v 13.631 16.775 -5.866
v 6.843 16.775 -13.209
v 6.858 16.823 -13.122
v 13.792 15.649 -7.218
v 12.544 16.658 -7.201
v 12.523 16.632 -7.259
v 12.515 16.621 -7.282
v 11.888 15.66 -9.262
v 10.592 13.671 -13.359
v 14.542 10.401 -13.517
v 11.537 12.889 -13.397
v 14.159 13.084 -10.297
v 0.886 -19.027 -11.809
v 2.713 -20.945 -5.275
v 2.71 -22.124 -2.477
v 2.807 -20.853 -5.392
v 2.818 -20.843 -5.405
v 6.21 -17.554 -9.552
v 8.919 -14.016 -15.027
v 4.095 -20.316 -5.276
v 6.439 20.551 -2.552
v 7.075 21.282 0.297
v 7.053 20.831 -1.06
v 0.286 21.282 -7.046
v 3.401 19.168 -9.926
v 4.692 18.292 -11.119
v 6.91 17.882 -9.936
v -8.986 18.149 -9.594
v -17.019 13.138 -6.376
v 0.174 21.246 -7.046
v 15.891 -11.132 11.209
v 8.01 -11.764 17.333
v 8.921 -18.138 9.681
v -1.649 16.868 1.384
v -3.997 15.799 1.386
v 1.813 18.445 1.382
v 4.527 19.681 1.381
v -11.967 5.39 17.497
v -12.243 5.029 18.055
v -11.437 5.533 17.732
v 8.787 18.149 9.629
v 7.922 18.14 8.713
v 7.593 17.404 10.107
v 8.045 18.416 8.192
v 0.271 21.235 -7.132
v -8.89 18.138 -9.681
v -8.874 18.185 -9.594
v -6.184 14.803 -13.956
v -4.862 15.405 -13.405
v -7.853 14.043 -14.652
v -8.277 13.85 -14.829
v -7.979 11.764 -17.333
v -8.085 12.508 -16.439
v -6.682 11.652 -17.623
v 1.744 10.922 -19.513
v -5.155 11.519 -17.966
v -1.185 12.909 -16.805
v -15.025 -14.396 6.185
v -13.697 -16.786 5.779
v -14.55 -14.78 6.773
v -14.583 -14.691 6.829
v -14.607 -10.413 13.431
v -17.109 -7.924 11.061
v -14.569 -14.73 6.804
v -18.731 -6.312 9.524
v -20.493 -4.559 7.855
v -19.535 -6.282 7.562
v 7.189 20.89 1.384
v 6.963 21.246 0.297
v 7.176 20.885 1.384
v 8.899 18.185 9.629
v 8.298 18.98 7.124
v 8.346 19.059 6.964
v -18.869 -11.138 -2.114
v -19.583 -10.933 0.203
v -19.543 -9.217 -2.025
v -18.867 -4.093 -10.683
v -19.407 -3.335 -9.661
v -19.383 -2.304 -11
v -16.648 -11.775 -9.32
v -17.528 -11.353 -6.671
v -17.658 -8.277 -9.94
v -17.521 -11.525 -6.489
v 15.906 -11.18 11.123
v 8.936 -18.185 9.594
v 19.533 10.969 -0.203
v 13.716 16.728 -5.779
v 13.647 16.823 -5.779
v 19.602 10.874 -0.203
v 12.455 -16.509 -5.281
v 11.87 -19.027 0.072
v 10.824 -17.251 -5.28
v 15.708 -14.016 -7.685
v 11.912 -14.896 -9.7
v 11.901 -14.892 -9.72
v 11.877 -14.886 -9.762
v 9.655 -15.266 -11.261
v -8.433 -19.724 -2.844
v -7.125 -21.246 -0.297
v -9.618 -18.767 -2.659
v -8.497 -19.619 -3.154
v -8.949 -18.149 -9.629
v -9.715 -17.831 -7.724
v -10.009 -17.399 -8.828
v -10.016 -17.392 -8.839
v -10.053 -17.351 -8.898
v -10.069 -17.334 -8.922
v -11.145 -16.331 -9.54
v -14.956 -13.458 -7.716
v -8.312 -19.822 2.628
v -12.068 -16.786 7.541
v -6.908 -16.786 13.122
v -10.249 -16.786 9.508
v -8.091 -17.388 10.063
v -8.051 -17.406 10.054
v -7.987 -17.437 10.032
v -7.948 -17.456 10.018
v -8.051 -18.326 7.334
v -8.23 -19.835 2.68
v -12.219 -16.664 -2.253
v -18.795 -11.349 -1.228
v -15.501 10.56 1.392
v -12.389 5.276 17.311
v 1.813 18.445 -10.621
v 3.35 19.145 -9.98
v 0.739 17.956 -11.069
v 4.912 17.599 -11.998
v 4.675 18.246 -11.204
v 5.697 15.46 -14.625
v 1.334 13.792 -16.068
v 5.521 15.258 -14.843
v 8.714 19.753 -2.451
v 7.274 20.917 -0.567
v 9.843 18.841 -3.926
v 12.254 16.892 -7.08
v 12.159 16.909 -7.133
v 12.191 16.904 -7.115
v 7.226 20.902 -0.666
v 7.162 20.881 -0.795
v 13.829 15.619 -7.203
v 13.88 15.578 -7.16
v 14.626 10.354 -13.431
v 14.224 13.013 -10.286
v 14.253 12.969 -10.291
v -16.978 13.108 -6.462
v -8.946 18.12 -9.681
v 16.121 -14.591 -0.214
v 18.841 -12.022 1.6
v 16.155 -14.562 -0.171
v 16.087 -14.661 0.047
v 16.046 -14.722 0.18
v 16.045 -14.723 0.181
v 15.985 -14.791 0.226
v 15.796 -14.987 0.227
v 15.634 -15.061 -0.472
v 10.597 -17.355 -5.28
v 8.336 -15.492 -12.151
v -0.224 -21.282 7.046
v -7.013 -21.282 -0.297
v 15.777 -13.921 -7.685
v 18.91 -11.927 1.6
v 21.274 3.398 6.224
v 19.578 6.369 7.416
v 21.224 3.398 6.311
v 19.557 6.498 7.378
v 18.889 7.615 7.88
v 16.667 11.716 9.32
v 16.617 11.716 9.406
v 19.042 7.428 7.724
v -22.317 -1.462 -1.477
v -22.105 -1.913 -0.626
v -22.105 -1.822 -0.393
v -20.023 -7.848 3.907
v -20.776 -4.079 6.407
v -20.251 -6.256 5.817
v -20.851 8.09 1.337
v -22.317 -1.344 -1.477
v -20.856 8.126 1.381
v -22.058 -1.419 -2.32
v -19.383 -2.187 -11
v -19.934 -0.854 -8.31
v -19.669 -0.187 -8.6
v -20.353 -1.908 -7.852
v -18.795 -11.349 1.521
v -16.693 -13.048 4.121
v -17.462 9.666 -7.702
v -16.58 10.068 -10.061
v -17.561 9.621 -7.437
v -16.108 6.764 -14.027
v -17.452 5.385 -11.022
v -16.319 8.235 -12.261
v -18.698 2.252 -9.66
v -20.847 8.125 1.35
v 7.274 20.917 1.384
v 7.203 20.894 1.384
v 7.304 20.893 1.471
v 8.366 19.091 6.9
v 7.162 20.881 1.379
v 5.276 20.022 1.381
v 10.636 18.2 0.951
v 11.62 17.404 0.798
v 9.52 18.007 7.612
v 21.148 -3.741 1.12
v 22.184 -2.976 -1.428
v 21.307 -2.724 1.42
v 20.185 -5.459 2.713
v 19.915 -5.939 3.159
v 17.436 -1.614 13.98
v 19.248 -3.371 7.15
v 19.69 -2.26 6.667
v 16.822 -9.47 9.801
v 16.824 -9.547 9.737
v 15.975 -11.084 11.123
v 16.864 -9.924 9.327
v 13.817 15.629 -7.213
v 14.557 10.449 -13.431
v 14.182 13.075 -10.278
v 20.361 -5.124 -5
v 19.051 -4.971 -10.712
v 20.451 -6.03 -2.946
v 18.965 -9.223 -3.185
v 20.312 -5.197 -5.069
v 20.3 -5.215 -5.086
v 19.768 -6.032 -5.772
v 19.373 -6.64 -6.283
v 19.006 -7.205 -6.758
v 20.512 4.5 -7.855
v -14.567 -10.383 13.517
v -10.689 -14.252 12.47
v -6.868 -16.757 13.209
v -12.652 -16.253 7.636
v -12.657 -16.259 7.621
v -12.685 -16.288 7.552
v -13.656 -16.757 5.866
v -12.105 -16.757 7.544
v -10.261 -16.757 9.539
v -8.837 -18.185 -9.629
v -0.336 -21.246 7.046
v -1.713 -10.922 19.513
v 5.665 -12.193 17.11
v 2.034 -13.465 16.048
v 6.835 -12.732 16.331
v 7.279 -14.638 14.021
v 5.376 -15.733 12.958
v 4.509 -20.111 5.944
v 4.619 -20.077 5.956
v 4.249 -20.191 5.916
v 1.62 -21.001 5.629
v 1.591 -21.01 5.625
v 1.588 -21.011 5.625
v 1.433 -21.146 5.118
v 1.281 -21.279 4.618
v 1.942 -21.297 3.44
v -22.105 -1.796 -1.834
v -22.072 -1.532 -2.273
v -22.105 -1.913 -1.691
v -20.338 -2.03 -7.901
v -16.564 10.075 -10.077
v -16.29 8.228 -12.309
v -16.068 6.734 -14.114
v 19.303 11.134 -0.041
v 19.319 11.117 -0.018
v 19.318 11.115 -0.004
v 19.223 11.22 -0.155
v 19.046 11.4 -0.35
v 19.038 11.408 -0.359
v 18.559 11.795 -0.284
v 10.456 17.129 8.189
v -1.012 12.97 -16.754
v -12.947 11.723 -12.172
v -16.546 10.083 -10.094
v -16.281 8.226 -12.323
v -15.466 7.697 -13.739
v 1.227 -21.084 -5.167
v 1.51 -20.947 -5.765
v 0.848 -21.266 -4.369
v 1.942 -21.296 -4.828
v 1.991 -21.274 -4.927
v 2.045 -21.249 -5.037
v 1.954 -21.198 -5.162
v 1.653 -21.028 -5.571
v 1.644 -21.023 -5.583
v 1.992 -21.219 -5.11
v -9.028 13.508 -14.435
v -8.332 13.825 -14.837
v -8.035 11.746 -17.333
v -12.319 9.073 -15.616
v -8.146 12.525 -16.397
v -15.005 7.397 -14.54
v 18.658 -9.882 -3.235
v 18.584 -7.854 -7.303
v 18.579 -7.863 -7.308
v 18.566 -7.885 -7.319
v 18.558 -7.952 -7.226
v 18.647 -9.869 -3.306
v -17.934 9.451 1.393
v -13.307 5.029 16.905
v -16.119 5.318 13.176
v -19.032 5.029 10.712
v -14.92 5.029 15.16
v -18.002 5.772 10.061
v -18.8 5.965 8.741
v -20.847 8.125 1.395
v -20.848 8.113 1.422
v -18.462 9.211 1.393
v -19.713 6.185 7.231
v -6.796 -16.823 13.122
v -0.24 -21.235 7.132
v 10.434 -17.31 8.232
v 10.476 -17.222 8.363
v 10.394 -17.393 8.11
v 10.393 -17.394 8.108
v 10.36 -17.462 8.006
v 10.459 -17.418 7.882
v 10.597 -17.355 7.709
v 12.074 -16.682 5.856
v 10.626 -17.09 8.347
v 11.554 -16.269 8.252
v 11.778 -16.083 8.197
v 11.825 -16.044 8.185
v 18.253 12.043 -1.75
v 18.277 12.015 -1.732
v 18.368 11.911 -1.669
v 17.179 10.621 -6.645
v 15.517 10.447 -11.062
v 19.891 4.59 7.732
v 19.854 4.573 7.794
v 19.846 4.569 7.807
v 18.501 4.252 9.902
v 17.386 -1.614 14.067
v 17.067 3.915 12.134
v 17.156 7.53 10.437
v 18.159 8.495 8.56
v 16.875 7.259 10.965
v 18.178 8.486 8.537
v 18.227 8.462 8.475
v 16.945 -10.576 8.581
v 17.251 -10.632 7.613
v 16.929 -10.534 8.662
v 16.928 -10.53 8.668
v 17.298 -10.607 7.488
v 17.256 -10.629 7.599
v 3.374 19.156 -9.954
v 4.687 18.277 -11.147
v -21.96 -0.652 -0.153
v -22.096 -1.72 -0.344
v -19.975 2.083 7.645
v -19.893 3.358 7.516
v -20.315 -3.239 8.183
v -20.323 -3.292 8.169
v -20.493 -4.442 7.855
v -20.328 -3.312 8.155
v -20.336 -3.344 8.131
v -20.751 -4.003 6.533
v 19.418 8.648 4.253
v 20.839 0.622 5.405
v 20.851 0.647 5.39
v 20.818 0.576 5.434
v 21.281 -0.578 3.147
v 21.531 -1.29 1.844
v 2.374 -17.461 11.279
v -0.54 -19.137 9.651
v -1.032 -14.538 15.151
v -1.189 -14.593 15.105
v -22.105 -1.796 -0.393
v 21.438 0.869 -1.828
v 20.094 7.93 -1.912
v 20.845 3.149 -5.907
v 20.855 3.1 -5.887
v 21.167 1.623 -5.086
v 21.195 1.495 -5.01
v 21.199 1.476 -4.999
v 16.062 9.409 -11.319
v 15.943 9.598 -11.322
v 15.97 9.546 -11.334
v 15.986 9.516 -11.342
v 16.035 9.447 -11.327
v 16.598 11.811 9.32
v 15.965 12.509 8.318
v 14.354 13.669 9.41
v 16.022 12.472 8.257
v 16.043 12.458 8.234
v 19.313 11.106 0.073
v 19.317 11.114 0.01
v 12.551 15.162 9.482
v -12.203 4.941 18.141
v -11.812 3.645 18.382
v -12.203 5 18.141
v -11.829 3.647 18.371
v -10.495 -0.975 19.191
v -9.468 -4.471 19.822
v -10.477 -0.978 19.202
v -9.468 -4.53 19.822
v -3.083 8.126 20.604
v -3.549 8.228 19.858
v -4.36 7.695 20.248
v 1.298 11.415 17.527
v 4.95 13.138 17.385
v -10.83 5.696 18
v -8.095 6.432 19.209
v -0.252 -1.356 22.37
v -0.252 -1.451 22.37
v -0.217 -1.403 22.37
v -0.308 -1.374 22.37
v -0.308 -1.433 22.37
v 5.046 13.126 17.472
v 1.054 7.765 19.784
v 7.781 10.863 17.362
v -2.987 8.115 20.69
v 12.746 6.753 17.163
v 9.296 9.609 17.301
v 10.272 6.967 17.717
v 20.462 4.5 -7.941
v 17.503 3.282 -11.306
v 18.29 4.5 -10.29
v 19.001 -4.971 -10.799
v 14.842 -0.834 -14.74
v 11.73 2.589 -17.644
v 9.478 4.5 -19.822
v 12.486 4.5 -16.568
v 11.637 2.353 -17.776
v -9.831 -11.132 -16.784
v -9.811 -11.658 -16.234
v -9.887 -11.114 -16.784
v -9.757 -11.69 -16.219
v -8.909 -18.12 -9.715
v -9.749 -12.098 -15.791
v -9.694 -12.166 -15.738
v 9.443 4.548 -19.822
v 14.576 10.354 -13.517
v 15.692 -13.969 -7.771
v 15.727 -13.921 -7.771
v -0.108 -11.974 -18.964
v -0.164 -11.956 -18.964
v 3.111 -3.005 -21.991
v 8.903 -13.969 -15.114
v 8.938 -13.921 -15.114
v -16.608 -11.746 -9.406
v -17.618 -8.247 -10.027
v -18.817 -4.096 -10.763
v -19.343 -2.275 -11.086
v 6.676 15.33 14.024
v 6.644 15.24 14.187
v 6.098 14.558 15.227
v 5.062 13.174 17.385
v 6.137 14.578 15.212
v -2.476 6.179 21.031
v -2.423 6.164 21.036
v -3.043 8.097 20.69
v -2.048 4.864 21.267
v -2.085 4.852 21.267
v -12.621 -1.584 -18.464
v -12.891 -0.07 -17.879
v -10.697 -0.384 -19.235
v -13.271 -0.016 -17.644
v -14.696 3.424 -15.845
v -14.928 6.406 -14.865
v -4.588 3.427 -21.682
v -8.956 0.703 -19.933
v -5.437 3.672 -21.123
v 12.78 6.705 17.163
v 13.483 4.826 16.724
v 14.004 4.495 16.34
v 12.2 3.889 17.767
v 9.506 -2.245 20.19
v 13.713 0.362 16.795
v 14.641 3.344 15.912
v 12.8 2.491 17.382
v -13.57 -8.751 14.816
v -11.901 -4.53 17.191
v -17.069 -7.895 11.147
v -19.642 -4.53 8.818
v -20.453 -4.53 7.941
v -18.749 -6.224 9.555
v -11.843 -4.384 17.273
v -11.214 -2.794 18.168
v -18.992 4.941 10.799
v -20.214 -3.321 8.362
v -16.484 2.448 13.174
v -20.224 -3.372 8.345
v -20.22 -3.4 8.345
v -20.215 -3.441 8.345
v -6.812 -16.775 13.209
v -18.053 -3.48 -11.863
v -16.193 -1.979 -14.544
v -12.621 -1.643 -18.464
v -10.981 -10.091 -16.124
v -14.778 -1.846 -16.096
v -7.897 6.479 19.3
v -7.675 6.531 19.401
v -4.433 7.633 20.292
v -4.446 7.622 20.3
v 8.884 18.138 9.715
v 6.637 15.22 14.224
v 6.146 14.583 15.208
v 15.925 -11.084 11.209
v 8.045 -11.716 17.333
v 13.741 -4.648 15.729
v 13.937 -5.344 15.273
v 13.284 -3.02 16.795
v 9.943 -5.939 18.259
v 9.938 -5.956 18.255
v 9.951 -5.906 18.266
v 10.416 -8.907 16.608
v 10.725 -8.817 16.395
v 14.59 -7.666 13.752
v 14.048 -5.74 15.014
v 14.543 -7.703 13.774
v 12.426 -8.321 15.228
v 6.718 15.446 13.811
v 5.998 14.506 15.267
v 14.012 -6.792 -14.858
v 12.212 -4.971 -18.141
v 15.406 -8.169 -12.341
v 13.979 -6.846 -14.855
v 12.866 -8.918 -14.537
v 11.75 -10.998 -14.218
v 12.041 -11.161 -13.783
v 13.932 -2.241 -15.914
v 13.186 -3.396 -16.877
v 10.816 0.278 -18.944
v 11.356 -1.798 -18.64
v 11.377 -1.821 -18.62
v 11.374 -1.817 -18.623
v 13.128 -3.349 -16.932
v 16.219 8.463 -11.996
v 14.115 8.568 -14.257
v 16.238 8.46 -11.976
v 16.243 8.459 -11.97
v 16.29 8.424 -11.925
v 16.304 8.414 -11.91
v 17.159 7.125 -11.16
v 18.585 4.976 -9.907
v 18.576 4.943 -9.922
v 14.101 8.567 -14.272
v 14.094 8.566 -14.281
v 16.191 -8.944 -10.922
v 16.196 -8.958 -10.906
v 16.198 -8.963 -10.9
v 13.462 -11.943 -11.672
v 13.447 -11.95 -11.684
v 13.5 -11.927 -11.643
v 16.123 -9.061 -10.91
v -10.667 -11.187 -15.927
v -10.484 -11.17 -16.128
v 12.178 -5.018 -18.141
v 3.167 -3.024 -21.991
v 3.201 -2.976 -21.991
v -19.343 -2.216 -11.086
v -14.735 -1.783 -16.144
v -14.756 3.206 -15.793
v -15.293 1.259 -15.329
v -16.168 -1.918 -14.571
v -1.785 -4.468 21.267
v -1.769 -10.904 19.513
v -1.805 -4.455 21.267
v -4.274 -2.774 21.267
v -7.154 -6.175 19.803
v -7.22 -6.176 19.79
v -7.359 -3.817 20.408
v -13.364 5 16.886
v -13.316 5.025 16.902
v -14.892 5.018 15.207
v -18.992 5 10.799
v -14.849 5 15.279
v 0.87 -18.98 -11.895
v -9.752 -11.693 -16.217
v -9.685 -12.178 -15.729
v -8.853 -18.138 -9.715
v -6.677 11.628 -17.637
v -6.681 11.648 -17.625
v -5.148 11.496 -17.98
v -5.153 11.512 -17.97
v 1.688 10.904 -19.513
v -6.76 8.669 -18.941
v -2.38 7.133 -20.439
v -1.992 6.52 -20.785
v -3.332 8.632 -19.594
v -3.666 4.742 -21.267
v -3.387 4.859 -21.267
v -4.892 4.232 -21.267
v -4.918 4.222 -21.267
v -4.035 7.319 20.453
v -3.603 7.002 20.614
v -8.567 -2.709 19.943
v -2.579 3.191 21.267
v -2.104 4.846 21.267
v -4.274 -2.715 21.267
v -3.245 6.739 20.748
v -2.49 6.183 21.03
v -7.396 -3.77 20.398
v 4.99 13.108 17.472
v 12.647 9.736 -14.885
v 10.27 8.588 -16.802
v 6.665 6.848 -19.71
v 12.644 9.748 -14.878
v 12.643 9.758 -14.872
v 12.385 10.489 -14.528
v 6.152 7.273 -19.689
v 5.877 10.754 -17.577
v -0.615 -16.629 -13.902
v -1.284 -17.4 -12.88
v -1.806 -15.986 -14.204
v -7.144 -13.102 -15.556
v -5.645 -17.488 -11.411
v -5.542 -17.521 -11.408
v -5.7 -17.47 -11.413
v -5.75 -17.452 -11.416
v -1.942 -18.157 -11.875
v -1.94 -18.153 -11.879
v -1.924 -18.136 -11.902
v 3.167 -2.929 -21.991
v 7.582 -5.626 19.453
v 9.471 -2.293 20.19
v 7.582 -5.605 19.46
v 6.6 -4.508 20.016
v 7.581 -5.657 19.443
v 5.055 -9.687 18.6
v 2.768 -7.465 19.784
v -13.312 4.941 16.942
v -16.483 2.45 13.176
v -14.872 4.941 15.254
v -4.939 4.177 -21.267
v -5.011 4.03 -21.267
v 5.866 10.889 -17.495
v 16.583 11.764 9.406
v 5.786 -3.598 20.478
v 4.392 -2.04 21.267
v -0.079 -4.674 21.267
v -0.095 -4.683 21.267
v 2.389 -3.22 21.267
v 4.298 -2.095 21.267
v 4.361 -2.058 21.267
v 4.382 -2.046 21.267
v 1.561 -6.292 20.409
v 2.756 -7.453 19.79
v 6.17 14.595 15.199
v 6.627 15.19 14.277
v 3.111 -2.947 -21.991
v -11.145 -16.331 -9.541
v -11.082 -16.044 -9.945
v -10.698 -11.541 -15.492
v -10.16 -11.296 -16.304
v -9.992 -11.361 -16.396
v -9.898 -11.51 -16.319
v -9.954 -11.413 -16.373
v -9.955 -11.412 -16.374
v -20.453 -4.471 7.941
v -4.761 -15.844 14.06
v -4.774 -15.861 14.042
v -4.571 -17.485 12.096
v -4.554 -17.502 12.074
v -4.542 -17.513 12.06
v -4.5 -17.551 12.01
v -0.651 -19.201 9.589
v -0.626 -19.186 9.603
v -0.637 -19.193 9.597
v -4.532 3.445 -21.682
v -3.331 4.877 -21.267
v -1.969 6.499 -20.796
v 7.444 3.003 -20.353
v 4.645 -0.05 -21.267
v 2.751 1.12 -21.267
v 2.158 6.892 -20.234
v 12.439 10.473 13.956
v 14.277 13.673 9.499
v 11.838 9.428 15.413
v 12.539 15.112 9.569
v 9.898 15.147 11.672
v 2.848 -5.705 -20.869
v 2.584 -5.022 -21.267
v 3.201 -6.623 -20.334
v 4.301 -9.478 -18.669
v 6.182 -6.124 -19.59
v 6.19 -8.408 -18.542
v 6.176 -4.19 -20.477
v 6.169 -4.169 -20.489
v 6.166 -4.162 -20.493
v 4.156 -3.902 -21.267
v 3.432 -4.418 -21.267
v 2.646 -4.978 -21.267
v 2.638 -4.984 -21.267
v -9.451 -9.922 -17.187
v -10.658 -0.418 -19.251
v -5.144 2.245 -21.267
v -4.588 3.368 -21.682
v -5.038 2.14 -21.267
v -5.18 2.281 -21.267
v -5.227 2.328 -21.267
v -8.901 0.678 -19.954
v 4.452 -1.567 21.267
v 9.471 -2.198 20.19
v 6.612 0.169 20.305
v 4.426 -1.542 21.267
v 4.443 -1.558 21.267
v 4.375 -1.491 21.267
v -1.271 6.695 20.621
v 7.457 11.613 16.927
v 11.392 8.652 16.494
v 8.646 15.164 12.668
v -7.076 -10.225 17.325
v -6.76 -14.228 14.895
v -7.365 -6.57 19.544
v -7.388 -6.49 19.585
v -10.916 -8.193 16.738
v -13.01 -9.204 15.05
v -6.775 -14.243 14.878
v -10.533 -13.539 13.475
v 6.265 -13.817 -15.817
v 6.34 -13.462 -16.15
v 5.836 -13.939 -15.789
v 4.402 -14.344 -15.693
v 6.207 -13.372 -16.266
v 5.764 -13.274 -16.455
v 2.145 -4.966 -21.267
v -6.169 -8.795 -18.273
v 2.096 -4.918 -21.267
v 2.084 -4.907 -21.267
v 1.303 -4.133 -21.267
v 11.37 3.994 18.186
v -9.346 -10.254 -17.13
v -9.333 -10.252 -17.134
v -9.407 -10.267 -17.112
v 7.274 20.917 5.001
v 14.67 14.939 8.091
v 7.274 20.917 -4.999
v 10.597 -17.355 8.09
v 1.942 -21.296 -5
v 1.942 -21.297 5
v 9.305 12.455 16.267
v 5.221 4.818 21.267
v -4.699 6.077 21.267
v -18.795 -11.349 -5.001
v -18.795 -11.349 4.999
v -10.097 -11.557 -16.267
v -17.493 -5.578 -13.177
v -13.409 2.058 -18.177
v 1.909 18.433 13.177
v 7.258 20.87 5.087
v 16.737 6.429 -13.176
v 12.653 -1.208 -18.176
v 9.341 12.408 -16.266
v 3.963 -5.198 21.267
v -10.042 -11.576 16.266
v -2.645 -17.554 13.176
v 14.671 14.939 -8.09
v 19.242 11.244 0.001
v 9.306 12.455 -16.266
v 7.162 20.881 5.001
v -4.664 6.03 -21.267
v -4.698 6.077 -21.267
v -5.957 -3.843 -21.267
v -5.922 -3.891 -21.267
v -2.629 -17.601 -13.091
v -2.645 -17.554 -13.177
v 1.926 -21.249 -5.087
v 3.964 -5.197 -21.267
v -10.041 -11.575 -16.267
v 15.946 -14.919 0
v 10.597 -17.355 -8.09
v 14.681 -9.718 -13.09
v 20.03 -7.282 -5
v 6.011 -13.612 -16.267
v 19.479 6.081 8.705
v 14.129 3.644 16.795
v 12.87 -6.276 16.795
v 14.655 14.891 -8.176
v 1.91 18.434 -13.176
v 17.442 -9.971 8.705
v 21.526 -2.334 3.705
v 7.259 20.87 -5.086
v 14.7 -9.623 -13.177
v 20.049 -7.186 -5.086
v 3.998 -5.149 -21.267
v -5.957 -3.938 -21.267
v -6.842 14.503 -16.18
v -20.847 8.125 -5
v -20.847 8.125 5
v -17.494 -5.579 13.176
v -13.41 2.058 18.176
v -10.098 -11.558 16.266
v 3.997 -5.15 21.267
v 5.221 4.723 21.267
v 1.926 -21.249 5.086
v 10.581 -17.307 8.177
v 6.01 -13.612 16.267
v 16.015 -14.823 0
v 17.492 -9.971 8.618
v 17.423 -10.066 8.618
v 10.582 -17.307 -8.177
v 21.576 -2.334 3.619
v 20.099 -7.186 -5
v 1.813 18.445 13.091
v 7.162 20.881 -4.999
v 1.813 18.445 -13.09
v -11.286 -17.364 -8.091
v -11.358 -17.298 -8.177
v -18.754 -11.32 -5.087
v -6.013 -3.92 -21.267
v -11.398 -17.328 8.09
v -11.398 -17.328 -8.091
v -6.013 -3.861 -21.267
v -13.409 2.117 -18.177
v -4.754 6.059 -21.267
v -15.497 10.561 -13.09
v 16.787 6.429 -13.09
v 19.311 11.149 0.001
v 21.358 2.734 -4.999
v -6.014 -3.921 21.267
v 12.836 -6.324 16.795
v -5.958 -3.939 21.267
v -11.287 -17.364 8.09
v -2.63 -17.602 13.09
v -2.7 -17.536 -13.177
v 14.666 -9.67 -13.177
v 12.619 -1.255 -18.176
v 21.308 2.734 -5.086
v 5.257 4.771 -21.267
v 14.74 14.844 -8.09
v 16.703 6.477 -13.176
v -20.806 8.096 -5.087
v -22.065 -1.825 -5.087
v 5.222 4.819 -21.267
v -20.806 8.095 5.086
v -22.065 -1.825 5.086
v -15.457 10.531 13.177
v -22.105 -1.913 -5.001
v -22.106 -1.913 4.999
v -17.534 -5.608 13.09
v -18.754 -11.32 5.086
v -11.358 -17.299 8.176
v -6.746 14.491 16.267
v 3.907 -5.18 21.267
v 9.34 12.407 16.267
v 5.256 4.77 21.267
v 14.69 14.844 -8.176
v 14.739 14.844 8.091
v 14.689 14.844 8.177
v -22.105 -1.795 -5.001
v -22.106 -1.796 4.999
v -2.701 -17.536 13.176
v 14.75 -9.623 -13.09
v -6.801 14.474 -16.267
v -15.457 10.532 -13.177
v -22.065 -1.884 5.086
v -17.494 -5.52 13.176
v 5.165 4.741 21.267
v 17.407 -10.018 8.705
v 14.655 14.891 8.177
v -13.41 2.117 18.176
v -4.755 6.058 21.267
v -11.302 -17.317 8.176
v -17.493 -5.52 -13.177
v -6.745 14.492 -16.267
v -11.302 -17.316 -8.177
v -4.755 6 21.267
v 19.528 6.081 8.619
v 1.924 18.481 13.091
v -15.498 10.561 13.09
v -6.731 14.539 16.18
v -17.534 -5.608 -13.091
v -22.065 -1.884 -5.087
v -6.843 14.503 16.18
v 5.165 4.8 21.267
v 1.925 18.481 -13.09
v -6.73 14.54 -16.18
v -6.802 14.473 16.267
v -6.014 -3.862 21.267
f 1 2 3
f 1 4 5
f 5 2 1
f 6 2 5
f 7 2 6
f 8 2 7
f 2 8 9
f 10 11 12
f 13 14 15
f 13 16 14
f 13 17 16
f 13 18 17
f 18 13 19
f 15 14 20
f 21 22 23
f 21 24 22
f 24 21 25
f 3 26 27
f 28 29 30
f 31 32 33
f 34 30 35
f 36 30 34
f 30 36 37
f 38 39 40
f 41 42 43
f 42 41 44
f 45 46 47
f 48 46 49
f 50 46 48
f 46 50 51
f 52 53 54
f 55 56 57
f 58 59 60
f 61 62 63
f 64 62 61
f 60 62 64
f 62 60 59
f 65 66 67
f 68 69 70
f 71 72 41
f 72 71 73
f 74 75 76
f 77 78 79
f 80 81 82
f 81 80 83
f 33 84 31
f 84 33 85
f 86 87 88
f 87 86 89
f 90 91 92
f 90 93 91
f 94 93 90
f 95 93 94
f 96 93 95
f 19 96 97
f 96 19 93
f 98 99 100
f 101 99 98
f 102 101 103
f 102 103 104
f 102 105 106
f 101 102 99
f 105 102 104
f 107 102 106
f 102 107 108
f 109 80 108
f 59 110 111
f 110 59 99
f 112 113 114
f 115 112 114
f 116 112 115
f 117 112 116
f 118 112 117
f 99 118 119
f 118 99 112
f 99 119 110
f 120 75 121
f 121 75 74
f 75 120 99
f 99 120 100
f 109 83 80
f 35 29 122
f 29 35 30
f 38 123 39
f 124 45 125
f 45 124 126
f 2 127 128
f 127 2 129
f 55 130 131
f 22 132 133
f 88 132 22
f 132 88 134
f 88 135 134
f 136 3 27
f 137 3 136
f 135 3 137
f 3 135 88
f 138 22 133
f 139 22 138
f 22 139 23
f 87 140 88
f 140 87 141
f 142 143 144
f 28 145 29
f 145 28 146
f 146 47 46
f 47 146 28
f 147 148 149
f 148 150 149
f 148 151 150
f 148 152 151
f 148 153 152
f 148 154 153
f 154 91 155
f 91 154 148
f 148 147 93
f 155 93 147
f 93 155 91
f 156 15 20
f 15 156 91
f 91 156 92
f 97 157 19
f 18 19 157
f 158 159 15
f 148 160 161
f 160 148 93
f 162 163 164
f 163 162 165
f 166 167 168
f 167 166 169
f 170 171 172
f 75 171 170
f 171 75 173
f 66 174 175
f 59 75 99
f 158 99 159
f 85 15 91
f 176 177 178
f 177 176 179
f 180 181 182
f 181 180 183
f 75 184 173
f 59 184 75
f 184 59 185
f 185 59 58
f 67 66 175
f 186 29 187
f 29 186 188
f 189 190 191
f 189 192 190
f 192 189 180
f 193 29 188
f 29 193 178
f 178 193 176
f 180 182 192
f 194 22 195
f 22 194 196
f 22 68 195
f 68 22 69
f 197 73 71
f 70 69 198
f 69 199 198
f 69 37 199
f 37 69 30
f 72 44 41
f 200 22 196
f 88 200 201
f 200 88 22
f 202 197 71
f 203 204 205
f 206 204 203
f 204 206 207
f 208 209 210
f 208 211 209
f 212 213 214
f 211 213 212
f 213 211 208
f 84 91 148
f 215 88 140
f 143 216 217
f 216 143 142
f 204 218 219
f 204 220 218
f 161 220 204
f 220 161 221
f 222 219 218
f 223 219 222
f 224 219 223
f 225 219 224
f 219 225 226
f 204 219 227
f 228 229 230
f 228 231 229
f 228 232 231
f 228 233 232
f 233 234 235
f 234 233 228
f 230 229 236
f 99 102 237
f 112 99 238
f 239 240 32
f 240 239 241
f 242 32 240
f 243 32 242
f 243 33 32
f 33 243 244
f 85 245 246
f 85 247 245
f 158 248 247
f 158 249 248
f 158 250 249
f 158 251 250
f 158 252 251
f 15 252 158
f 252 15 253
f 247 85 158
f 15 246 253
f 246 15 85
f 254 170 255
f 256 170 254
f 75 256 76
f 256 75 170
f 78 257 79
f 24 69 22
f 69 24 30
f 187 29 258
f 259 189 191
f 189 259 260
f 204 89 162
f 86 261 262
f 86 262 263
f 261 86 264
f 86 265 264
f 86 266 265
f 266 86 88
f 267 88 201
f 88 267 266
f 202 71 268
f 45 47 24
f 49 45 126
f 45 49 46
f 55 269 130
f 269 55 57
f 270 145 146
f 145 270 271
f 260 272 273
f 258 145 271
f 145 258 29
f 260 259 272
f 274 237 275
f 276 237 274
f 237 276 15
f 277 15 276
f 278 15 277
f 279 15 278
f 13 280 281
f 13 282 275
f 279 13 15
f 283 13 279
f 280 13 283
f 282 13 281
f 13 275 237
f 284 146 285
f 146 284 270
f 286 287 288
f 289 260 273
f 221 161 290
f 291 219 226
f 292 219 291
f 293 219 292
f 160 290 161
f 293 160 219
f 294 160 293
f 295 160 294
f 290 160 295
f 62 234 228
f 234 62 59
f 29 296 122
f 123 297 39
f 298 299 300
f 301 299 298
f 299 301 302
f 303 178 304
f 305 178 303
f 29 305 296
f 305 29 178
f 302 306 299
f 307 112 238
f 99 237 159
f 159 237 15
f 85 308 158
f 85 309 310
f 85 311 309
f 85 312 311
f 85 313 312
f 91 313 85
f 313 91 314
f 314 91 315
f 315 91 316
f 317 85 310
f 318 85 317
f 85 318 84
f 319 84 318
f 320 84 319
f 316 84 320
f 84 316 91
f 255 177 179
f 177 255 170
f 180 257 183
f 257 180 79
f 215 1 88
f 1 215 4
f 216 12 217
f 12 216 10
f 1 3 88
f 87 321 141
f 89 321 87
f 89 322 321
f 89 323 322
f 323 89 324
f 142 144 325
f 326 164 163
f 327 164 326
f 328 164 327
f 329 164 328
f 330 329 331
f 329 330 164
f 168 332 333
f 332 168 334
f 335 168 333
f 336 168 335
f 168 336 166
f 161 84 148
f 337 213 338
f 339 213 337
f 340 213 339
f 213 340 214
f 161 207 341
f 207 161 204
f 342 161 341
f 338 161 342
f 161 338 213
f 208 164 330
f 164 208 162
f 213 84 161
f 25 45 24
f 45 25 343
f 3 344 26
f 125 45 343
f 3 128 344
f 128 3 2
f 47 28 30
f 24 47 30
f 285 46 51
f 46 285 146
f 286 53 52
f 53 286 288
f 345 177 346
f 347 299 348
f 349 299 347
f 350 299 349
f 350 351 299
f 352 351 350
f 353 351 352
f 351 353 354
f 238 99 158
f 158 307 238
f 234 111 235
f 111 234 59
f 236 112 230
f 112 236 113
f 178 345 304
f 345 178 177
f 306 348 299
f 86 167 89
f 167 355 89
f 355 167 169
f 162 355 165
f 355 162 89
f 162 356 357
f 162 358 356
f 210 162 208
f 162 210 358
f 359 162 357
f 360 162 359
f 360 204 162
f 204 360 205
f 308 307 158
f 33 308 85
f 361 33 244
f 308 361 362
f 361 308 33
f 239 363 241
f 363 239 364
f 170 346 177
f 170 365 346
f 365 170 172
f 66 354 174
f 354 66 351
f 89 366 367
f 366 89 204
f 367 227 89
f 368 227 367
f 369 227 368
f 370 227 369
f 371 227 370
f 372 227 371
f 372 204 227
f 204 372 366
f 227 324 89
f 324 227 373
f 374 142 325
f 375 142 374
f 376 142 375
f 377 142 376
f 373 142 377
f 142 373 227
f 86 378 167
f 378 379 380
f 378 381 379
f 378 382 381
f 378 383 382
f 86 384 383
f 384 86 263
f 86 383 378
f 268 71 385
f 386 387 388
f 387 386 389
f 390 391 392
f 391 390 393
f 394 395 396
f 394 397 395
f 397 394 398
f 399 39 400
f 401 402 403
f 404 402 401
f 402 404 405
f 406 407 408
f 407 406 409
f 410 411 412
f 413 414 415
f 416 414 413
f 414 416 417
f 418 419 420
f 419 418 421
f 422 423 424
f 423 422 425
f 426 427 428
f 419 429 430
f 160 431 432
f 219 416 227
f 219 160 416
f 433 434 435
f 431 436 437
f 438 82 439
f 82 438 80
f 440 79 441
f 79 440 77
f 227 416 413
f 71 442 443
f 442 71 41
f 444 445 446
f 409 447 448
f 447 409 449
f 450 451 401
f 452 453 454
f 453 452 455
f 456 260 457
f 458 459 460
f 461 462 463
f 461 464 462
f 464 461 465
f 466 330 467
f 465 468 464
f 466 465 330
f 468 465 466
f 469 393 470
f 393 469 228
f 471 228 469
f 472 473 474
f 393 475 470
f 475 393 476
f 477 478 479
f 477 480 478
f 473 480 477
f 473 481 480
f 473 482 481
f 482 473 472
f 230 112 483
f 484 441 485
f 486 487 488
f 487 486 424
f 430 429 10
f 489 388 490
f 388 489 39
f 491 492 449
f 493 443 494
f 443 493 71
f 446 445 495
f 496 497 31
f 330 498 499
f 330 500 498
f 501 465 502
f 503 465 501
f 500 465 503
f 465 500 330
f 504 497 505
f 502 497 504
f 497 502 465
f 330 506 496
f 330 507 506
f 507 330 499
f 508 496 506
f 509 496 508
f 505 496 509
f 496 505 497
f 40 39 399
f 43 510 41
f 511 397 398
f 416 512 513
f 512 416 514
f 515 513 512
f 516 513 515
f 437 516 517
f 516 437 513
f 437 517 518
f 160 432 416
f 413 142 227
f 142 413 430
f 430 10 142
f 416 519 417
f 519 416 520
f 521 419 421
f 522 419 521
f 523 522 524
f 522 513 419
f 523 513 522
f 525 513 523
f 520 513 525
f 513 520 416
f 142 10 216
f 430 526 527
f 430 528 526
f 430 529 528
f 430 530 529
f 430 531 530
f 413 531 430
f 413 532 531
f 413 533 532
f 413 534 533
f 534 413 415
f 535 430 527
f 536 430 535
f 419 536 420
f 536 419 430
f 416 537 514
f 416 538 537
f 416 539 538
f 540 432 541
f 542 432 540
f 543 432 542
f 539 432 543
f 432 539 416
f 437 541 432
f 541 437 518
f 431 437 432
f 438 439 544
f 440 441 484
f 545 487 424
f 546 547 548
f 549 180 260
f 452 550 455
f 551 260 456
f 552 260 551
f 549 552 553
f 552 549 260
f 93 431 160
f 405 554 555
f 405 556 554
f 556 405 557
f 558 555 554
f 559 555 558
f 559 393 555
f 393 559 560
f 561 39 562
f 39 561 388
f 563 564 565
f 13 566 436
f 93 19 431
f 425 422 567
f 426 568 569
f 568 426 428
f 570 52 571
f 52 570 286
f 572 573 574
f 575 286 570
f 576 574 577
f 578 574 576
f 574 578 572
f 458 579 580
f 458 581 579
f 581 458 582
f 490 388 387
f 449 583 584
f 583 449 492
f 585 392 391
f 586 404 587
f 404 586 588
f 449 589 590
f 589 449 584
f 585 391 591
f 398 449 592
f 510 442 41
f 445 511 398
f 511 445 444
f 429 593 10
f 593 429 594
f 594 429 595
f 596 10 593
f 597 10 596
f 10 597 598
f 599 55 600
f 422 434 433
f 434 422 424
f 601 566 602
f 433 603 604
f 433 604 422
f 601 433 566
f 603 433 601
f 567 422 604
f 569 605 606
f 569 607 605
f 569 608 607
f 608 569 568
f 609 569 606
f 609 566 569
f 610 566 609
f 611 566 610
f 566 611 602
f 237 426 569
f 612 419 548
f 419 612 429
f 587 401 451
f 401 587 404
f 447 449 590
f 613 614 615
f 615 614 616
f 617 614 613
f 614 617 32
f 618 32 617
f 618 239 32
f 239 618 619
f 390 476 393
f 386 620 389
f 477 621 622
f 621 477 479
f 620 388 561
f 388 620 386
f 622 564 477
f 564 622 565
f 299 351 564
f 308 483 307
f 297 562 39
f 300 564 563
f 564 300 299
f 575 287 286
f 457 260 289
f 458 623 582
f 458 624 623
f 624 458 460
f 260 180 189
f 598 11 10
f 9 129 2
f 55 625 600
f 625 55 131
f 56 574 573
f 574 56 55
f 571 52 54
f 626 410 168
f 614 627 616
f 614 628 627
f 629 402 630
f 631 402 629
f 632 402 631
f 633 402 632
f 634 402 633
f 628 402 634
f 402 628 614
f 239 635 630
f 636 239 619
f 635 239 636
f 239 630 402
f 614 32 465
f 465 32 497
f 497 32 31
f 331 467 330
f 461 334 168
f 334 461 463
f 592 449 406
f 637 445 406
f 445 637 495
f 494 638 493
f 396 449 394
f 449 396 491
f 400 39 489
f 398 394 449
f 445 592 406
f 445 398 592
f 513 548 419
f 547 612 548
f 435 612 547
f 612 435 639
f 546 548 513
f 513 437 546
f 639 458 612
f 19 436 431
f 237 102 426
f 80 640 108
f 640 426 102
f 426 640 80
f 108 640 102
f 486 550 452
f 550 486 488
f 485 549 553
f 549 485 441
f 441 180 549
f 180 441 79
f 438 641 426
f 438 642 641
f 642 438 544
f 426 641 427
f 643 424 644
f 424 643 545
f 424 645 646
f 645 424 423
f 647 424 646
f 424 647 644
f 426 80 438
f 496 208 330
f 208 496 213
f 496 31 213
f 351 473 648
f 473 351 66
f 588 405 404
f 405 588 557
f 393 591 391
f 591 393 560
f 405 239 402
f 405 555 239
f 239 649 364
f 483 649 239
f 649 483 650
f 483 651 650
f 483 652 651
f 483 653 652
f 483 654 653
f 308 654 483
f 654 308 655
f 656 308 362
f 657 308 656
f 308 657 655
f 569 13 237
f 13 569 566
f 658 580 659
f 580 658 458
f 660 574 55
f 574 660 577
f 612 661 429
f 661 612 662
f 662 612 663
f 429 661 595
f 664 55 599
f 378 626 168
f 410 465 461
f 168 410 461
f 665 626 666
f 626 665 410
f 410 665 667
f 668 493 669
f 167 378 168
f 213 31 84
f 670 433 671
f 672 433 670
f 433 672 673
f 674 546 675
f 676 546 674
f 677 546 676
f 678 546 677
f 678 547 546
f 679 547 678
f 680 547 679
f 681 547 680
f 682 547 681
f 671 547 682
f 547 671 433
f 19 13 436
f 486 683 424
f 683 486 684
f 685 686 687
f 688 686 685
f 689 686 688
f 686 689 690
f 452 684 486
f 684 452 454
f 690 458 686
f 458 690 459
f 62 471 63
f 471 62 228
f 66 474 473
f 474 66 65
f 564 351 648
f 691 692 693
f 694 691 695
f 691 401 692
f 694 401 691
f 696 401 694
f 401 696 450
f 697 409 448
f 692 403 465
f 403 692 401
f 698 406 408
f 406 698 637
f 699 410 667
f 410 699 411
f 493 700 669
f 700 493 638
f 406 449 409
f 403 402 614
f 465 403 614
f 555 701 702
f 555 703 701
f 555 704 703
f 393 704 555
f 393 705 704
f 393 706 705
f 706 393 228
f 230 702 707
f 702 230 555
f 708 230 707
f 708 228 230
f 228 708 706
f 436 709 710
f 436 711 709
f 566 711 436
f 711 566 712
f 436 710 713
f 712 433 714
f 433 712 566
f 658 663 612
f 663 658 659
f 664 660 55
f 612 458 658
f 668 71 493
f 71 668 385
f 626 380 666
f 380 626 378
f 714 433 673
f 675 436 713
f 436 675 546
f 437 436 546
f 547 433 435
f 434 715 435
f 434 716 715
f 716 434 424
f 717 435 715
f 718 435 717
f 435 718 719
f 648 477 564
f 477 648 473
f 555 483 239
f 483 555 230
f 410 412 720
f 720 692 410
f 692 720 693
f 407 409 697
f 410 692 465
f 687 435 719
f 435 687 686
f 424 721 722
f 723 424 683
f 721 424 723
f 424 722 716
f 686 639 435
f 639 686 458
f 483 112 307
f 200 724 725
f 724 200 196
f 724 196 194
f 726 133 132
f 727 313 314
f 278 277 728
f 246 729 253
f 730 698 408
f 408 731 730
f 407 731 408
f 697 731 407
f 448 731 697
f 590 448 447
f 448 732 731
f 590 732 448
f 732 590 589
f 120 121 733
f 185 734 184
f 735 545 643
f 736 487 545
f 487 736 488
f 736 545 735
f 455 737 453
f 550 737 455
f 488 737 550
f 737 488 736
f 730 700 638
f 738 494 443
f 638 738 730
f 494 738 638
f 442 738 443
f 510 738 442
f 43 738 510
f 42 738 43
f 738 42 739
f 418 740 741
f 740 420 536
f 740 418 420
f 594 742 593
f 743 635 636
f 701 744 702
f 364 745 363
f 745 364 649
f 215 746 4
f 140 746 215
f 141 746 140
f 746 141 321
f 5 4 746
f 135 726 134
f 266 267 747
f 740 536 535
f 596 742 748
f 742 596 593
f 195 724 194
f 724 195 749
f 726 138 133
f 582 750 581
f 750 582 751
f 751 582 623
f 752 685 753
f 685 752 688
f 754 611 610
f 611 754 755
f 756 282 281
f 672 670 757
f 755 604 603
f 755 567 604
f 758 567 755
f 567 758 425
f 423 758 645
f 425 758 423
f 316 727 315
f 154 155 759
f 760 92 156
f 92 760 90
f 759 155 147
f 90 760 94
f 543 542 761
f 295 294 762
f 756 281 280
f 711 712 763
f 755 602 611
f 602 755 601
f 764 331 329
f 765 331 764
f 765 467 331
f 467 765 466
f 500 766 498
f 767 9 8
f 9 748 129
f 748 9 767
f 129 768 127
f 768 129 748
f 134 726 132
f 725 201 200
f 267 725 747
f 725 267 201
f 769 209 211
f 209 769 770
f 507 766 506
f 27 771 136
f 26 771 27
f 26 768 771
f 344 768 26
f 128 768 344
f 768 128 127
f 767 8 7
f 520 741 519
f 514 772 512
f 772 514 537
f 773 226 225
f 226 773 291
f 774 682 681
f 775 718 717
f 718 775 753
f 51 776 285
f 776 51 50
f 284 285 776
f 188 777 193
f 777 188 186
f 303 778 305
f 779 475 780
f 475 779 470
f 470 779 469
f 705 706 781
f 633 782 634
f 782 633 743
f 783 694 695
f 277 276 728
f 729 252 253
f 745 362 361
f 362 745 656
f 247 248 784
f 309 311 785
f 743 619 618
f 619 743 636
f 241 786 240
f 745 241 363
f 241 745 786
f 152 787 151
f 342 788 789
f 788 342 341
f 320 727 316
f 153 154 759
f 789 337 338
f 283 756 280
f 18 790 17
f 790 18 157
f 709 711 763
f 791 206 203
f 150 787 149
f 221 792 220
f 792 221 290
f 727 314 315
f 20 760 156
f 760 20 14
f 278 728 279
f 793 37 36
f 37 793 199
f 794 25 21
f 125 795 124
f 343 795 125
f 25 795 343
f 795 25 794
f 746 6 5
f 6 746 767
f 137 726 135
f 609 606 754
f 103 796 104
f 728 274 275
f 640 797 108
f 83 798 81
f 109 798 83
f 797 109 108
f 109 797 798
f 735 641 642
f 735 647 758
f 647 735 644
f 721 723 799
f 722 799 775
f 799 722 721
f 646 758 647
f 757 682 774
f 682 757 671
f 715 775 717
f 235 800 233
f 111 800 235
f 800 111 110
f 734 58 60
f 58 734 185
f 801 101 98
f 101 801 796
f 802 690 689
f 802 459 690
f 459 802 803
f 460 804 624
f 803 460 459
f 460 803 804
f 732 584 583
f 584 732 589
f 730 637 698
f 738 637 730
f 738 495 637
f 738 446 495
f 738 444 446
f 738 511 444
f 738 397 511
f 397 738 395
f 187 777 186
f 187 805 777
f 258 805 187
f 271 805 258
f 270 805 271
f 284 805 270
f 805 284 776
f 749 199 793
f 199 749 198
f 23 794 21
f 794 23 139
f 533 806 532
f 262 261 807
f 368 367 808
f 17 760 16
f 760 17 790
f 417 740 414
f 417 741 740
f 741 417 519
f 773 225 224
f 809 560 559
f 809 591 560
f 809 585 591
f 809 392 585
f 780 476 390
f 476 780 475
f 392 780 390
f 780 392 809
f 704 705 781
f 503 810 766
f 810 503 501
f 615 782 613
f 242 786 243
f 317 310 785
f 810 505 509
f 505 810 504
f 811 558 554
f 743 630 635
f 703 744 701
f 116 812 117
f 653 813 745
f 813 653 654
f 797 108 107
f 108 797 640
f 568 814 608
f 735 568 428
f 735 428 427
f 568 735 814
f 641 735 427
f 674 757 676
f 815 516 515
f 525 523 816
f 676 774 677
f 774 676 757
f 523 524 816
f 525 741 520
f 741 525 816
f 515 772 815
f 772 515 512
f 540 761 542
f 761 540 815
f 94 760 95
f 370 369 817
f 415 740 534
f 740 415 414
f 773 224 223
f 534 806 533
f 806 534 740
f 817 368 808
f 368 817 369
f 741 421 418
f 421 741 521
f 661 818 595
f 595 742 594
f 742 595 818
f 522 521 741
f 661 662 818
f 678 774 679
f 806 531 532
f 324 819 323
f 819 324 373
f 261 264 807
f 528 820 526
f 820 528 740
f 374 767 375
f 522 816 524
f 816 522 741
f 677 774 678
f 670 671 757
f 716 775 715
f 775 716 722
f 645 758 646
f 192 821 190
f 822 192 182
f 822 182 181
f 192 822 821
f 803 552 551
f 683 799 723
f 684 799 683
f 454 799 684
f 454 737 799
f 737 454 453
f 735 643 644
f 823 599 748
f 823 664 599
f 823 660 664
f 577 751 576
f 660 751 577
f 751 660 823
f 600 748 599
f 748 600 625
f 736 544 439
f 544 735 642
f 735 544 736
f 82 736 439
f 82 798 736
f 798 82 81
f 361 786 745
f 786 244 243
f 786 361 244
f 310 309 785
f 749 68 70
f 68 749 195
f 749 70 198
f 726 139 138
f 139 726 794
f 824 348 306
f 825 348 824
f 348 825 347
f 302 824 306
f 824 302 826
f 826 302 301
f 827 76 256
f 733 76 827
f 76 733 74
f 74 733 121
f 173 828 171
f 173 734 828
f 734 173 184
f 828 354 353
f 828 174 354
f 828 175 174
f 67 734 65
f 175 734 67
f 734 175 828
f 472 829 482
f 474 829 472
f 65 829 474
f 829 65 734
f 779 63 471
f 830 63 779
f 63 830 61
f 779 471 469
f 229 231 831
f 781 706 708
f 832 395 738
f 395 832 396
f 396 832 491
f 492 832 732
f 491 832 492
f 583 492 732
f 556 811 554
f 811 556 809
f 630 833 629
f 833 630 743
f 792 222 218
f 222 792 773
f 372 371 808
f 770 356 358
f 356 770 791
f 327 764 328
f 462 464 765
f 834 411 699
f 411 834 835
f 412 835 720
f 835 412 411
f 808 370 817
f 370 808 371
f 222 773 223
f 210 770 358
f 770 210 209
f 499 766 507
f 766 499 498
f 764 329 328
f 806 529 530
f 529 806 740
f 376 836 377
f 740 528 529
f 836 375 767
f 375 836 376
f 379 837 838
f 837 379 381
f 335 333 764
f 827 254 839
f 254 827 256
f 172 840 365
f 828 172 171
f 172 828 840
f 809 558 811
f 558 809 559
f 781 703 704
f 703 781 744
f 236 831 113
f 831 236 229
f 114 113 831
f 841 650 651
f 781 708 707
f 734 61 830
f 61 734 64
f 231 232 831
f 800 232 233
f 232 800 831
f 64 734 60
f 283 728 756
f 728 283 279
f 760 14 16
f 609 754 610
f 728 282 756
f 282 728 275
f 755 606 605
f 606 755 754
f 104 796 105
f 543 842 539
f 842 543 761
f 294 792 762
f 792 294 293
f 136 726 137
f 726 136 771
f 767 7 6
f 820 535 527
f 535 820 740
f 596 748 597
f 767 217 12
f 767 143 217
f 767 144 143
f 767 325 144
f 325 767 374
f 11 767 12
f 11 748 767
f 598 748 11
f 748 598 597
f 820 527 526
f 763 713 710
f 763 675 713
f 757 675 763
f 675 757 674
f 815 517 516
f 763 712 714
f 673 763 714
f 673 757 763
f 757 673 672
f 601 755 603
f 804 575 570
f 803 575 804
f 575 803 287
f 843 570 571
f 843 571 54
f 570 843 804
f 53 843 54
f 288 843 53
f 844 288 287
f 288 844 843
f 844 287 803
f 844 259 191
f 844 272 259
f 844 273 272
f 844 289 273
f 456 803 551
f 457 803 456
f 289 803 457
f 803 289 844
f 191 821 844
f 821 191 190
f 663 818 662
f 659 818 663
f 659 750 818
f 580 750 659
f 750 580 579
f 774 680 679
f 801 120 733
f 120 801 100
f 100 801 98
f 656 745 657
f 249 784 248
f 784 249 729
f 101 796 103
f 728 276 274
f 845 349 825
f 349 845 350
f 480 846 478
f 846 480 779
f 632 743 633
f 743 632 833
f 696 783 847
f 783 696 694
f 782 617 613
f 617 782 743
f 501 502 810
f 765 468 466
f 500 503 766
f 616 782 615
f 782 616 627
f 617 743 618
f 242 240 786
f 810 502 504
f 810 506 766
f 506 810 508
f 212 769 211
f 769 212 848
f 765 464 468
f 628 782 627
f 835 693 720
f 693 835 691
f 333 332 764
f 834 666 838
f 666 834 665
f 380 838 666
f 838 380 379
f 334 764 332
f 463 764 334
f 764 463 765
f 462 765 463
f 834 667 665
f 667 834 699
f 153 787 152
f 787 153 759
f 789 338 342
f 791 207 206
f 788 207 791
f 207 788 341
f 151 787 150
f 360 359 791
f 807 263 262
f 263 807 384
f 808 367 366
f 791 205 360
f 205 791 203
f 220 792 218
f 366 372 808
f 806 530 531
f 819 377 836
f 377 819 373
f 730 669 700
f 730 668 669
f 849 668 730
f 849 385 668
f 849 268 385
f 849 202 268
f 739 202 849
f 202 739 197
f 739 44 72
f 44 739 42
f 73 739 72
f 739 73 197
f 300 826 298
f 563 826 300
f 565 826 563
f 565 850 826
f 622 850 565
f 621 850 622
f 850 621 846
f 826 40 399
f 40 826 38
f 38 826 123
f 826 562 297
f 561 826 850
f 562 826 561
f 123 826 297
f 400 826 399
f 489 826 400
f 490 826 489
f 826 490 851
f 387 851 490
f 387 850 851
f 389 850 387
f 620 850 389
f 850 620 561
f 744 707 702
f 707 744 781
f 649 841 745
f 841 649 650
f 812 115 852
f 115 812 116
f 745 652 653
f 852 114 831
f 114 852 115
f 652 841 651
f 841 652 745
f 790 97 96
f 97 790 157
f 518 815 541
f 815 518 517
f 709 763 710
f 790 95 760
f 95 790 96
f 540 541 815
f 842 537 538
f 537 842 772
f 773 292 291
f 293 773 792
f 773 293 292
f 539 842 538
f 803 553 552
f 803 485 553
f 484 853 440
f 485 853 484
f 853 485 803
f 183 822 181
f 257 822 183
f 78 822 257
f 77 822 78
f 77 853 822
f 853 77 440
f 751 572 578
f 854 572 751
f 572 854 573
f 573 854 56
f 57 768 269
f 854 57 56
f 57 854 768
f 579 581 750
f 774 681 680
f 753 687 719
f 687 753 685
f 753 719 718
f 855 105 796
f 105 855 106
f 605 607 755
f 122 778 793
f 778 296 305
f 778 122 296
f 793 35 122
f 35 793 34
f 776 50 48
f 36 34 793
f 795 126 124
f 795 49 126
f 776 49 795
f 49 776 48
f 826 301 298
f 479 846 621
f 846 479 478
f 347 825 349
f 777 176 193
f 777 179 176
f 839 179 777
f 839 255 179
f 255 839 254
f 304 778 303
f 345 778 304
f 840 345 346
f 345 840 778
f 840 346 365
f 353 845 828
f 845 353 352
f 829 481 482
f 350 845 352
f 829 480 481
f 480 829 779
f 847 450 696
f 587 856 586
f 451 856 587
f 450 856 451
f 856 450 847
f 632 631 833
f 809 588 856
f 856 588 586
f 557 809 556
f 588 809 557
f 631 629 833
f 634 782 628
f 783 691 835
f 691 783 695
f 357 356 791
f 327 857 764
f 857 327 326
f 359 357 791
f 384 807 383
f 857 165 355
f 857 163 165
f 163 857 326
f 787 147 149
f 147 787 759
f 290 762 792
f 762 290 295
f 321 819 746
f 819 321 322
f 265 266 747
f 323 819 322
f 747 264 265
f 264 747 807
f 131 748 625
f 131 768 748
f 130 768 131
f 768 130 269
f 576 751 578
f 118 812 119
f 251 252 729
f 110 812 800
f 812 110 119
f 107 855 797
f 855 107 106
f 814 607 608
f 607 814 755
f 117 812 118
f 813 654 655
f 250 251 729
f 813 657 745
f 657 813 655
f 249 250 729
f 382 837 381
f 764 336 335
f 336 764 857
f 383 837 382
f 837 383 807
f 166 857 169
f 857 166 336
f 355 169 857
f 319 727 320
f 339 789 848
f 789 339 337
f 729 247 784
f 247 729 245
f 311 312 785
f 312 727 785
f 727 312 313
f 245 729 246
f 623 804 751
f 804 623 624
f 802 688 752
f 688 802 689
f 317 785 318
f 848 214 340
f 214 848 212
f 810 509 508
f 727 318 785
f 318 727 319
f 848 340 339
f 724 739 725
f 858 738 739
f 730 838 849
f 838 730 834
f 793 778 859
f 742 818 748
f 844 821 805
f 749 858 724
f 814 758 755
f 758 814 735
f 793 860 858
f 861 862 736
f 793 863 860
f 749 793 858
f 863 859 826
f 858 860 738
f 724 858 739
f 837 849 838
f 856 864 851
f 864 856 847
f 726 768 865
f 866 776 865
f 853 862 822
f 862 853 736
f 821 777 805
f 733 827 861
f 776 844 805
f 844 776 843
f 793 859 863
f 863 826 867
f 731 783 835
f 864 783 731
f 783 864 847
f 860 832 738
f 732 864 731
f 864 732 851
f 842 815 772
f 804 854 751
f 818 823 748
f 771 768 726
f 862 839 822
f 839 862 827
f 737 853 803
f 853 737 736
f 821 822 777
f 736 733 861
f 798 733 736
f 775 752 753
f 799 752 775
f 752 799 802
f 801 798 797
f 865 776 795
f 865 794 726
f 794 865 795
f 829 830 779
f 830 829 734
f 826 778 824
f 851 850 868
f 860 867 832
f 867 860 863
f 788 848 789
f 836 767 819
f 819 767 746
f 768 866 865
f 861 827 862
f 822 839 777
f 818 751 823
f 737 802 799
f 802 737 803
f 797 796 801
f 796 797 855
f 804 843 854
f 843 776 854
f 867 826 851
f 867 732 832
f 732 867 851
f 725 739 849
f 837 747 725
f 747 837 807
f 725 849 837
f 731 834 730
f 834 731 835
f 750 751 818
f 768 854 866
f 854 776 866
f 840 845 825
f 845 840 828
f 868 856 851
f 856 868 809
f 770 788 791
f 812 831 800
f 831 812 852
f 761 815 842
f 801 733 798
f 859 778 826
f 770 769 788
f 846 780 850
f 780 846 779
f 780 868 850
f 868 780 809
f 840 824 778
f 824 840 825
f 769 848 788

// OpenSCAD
// Auto-generated OpenSCAD file

    inner_points = 10*[[-0.6761707289295088, 1.4443912429777448, 1.6180428150467039], [1.2603258031723903, -0.12076505073214727, -1.8089878045154844], [-0.4714605992542724, 0.6029023975518815, 2.1180331007845328], [1.465035932847627, -0.9622538961580105, -1.3089975187776557], [-1.541683511369511, 1.050210284169558, 1.3089975187776557], [0.3948130207323881, -0.514946009540334, -2.1180331007845328], [-1.3369733816942744, 0.20872143874369475, 1.8089878045154844], [0.5995231504076245, -1.3564348549661973, -1.6180428150467039], [1.463934226922532, 1.4843529255560477, 0.8090793922871596], [1.921079046691184, 1.1148696448288868, 6.720509726276802e-05], [1.2820322182132897, -0.6276002421239685, 1.6708412238007613], [1.7391770379819418, -0.9970835228511294, 0.8618290366108644], [-2.202436754888304, -0.18542441139147592, -0.5000574908350913], [-1.7452919351196523, -0.5549076921186369, -1.3090696780249882], [-1.1317568977713777, -1.7269135363970753, 0.8089588950643893], [-0.674612078002726, -2.0963968171242366, -5.329212550742035e-05], [0.18942199934983583, 1.838629008812172, -1.308979864697917], [0.5994432045682823, -1.3564916619924376, 1.6180251609669651], [1.0565880243369343, -1.7259749427195985, 0.8090129737770685], [-0.6760907830901666, 1.4444480500039851, -1.6180251609669651], [-0.26606957787172014, -1.7506726208006245, 1.308979864697917], [0.1910752418969318, -2.1201559015277853, 0.49996767750802007], [0.5206899199254378, 0.4770998592723383, -2.118012576336173], [-0.5973374984473221, -0.3891434712607908, 2.118012576336173], [1.0566279972566053, -1.7259465392064783, -0.8090210142297662], [0.9289932050541309, 1.2407181409580579, 1.6180788946703704], [2.1258138809894067, 0.2733983537395316, -0.49994250870567225], [-2.202461459511291, -0.1854419657279841, 0.49994250870567225], [-1.005640783576015, -1.1527617529465104, -1.6180788946703704], [0.7243230482985655, 2.082235389897041, -0.4999453790742929], [1.9428501392747406, 0.6080804112866934, 0.8618622458659101], [-1.5416188338268535, 1.050256242019186, -1.3090364687699425], [-1.871368076395344, -1.1290310720560819, -0.500065876297063], [0.18935732180717835, 1.8385830509625434, 1.3090541228496813], [1.6687090341404256, 0.6429100379798126, -1.3089643095226098], [0.5205852694631093, 0.47702549790959015, 2.1180553992182594], [1.9999369817963566, -0.7186475150731406, -0.4999630331540315], [-2.0765845603182407, 0.8066039030846881, 0.4999630331540315], [-0.5972328479849937, -0.38906910989804266, -2.1180553992182594], [-1.7453566126623097, -0.5549536499682651, 1.3089643095226098], [-0.26600490032906265, -1.750626662950996, -1.3090541228496813], [0.7242983436755794, 2.082217835560533, 0.5000546204664706], [1.463974199842203, 1.4843813290691679, -0.8089545957196747], [1.4079091174063396, 0.3644456266887037, 1.6708617482491208], [2.1475849735729633, -0.2333908798026617, 0.3618525320629751], [-2.0765598556952543, 0.8066214574211964, -0.5000369663867321], [-1.336883999528631, 0.20878495092983085, -1.8090461825728774], [-1.8713927810183302, -1.1290486263925898, 0.4999341232437007], [-1.1317169248517065, -1.7268851328839554, -0.8090750929424451], [0.9290731508934732, 1.2407749479842982, -1.6179890813432987], [0.39470837027005956, -0.5150203709030822, 2.1180348747699], [1.591529046205335, -1.4823401581216085, 1.3471393857822367e-05], [-0.47135594879194387, 0.6029767589146297, -2.1180348747699], [-1.0057207294153574, -1.1528185599727507, 1.6179890813432987], [0.19109994651991802, -2.120138347191277, -0.5000323220327436]];

    outer_points = 10*[[0.02552547509395009, 2.1187272483769695, -0.7045645993136277], [-1.3615932646610294, -1.6727578892770014, 0.5779384076102413], [0.6827172728374509, 1.6727578892770014, -1.3121913529400864], [-0.7044014669175285, -2.1187272483769695, -0.029688346016217504], [0.7044014669175285, 2.1187272483769695, 0.029688346016217504], [-0.6827172728374509, -1.6727578892770014, 1.3121913529400864], [1.3615932646610294, 1.6727578892770014, -0.5779384076102413], [-0.02552547509395009, -2.1187272483769695, 0.7045645993136277], [-1.6027511659773777, 0.6705087936332265, -1.4027382632260594], [-1.9302054814233927, -0.22453943453325823, -1.099980372244143], [0.315133473353602, -0.29761058586558886, -2.1904763889740115], [-0.012320842092413131, -1.1926588140320735, -1.8877184979920947], [1.273013683679892, 0.6705087936332265, 1.7076071258706018], [0.945559368233877, -0.22453943453325823, 2.0103650168525182], [2.2084197579852707, -0.29761058586558886, -0.1427518448945897], [1.8809654425392557, -1.1926588140320735, 0.16000604608732683], [-1.8951197183831776, 0.4970541464314976, 1.0712265894806337], [1.2162437265595991, -0.4970541464314976, -1.8054795348104788], [0.8887894111135841, -1.3921023745979824, -1.5027216438285624], [-1.2162437265595991, 0.4970541464314976, 1.8054795348104788], [1.8951197183831776, -0.4970541464314976, -1.0712265894806337], [1.5676654029371626, -1.3921023745979824, -0.7684686984987172], [-1.4526456533333216, -1.0353759855059943, 1.3430879167013183], [1.4526456533333216, 1.0353759855059943, -1.3430879167013183], [0.26790481028680946, -2.2029389255707184, -0.24769957676650906], [-0.7994549424817525, 1.1716333414551139, -1.7245912807479955], [-1.6567414700822498, -1.1716333414551139, -0.9319608317951029], [1.6567414700822498, 1.1716333414551139, 0.9319608317951029], [0.7994549424817525, -1.1716333414551139, 1.7245912807479955], [-2.077531341052028, 0.8067661495823462, 0.13805753994051662], [-1.258091130637894, -0.16135322991646922, -1.8377268076908435], [-0.3002109203116041, 0.8067661495823462, 2.06035670715377], [1.7336395829106201, -0.16135322991646922, 1.3980439582719861], [-0.8905073311540451, 1.809015245226121, -0.9594417716569185], [-1.9501717554630091, -1.0874216642613652, 0.020303344285033886], [0.1728513347225853, 1.0874216642613652, -1.9426025114982872], [-0.8868130895863787, -1.809015245226121, -0.9628573955563348], [0.8868130895863787, 1.809015245226121, 0.9628573955563348], [-0.1728513347225853, -1.0874216642613652, 1.9426025114982872], [1.9501717554630091, 1.0874216642613652, -0.020303344285033886], [0.8905073311540451, -1.809015245226121, 0.9594417716569185], [-1.6938035546496701, 1.3078906974042335, -0.6375887541349824], [-2.2236357668041524, -0.14032775733950953, -0.1477161961640061], [-0.454794907142269, 0.33977131790541826, -2.15957982521278], [-0.9846271192967511, -1.1084471368383249, -1.6697072672418034], [0.503085303184021, 1.3078906974042335, 1.7385036896318335], [-0.02674690897046106, -0.14032775733950953, 2.22837624760281], [2.117367369312978, 0.33977131790541826, 0.6223976641964872], [1.5875351571584961, -1.1084471368383249, 1.1122702221674634], [-2.041224144135302, -0.4500397604903581, 0.7854528533761111], [0.9427797152184564, 0.4500397604903581, -1.9734990752595192], [0.0854931876179591, -1.8932269224198697, -1.1808686263066264], [-0.9427797152184564, -0.4500397604903581, 1.9734990752595192], [2.041224144135302, 0.4500397604903581, -0.7854528533761111], [1.1839376165348048, -1.8932269224198697, 0.00717759557678177]];

    // Convex hull for inner set (I)
    module inner_hull() {
        hull() {
            for (p = inner_points) {
                translate(p) sphere(r=0.1);
            }
        }
    }

    // Convex hull for outer set (O) minus inner hull (O \ I)
    module outer_minus_inner() {
        difference() {
            hull() {
                for (p = outer_points) {
                    translate(p) sphere(r=0.1);
                }
            }
            inner_hull(); // Subtract inner hull
        }
    }

    // Convex hull for outer set (O) minus all translated inner hulls
    module outer_minus_AllTranslationInner() {
        difference() {
            hull() {
                for (p = outer_points) {
                    translate(p) sphere(r=0.1);
                }
            }
            hull() {
                translate([0,0,50]) inner_hull();
                translate([0,0,-50]) inner_hull();
            }; // Subtract translated inner hulls
        }
    }

    // Difference between outer_minus_inner and outer_minus_AllTranslationInner
    module outer_minus_inner_diff() {
        difference() {
            // Outer minus inner
            difference() {
                hull() {
                    for (p = outer_points) {
                        translate(p) sphere(r=0.1);
                    }
                }
                inner_hull();
            }

            // Subtract Outer minus AllTranslationInner
            difference() {
                hull() {
                    for (p = outer_points) {
                        translate(p) sphere(r=0.1);
                    }
                }
                hull() {
                    translate([0,0,50]) inner_hull();
                    translate([0,0,-50]) inner_hull();
                };
            }
        }
    }

    // Rendering all with colors applied
    color([1, 0, 0, 0.5]) inner_hull(); // Transparent red
    color([0, 1, 0, 1]) outer_minus_AllTranslationInner(); // Opaque green
    color([1, 1, 0, 1]) outer_minus_inner_diff(); // Opaque yellow
    
